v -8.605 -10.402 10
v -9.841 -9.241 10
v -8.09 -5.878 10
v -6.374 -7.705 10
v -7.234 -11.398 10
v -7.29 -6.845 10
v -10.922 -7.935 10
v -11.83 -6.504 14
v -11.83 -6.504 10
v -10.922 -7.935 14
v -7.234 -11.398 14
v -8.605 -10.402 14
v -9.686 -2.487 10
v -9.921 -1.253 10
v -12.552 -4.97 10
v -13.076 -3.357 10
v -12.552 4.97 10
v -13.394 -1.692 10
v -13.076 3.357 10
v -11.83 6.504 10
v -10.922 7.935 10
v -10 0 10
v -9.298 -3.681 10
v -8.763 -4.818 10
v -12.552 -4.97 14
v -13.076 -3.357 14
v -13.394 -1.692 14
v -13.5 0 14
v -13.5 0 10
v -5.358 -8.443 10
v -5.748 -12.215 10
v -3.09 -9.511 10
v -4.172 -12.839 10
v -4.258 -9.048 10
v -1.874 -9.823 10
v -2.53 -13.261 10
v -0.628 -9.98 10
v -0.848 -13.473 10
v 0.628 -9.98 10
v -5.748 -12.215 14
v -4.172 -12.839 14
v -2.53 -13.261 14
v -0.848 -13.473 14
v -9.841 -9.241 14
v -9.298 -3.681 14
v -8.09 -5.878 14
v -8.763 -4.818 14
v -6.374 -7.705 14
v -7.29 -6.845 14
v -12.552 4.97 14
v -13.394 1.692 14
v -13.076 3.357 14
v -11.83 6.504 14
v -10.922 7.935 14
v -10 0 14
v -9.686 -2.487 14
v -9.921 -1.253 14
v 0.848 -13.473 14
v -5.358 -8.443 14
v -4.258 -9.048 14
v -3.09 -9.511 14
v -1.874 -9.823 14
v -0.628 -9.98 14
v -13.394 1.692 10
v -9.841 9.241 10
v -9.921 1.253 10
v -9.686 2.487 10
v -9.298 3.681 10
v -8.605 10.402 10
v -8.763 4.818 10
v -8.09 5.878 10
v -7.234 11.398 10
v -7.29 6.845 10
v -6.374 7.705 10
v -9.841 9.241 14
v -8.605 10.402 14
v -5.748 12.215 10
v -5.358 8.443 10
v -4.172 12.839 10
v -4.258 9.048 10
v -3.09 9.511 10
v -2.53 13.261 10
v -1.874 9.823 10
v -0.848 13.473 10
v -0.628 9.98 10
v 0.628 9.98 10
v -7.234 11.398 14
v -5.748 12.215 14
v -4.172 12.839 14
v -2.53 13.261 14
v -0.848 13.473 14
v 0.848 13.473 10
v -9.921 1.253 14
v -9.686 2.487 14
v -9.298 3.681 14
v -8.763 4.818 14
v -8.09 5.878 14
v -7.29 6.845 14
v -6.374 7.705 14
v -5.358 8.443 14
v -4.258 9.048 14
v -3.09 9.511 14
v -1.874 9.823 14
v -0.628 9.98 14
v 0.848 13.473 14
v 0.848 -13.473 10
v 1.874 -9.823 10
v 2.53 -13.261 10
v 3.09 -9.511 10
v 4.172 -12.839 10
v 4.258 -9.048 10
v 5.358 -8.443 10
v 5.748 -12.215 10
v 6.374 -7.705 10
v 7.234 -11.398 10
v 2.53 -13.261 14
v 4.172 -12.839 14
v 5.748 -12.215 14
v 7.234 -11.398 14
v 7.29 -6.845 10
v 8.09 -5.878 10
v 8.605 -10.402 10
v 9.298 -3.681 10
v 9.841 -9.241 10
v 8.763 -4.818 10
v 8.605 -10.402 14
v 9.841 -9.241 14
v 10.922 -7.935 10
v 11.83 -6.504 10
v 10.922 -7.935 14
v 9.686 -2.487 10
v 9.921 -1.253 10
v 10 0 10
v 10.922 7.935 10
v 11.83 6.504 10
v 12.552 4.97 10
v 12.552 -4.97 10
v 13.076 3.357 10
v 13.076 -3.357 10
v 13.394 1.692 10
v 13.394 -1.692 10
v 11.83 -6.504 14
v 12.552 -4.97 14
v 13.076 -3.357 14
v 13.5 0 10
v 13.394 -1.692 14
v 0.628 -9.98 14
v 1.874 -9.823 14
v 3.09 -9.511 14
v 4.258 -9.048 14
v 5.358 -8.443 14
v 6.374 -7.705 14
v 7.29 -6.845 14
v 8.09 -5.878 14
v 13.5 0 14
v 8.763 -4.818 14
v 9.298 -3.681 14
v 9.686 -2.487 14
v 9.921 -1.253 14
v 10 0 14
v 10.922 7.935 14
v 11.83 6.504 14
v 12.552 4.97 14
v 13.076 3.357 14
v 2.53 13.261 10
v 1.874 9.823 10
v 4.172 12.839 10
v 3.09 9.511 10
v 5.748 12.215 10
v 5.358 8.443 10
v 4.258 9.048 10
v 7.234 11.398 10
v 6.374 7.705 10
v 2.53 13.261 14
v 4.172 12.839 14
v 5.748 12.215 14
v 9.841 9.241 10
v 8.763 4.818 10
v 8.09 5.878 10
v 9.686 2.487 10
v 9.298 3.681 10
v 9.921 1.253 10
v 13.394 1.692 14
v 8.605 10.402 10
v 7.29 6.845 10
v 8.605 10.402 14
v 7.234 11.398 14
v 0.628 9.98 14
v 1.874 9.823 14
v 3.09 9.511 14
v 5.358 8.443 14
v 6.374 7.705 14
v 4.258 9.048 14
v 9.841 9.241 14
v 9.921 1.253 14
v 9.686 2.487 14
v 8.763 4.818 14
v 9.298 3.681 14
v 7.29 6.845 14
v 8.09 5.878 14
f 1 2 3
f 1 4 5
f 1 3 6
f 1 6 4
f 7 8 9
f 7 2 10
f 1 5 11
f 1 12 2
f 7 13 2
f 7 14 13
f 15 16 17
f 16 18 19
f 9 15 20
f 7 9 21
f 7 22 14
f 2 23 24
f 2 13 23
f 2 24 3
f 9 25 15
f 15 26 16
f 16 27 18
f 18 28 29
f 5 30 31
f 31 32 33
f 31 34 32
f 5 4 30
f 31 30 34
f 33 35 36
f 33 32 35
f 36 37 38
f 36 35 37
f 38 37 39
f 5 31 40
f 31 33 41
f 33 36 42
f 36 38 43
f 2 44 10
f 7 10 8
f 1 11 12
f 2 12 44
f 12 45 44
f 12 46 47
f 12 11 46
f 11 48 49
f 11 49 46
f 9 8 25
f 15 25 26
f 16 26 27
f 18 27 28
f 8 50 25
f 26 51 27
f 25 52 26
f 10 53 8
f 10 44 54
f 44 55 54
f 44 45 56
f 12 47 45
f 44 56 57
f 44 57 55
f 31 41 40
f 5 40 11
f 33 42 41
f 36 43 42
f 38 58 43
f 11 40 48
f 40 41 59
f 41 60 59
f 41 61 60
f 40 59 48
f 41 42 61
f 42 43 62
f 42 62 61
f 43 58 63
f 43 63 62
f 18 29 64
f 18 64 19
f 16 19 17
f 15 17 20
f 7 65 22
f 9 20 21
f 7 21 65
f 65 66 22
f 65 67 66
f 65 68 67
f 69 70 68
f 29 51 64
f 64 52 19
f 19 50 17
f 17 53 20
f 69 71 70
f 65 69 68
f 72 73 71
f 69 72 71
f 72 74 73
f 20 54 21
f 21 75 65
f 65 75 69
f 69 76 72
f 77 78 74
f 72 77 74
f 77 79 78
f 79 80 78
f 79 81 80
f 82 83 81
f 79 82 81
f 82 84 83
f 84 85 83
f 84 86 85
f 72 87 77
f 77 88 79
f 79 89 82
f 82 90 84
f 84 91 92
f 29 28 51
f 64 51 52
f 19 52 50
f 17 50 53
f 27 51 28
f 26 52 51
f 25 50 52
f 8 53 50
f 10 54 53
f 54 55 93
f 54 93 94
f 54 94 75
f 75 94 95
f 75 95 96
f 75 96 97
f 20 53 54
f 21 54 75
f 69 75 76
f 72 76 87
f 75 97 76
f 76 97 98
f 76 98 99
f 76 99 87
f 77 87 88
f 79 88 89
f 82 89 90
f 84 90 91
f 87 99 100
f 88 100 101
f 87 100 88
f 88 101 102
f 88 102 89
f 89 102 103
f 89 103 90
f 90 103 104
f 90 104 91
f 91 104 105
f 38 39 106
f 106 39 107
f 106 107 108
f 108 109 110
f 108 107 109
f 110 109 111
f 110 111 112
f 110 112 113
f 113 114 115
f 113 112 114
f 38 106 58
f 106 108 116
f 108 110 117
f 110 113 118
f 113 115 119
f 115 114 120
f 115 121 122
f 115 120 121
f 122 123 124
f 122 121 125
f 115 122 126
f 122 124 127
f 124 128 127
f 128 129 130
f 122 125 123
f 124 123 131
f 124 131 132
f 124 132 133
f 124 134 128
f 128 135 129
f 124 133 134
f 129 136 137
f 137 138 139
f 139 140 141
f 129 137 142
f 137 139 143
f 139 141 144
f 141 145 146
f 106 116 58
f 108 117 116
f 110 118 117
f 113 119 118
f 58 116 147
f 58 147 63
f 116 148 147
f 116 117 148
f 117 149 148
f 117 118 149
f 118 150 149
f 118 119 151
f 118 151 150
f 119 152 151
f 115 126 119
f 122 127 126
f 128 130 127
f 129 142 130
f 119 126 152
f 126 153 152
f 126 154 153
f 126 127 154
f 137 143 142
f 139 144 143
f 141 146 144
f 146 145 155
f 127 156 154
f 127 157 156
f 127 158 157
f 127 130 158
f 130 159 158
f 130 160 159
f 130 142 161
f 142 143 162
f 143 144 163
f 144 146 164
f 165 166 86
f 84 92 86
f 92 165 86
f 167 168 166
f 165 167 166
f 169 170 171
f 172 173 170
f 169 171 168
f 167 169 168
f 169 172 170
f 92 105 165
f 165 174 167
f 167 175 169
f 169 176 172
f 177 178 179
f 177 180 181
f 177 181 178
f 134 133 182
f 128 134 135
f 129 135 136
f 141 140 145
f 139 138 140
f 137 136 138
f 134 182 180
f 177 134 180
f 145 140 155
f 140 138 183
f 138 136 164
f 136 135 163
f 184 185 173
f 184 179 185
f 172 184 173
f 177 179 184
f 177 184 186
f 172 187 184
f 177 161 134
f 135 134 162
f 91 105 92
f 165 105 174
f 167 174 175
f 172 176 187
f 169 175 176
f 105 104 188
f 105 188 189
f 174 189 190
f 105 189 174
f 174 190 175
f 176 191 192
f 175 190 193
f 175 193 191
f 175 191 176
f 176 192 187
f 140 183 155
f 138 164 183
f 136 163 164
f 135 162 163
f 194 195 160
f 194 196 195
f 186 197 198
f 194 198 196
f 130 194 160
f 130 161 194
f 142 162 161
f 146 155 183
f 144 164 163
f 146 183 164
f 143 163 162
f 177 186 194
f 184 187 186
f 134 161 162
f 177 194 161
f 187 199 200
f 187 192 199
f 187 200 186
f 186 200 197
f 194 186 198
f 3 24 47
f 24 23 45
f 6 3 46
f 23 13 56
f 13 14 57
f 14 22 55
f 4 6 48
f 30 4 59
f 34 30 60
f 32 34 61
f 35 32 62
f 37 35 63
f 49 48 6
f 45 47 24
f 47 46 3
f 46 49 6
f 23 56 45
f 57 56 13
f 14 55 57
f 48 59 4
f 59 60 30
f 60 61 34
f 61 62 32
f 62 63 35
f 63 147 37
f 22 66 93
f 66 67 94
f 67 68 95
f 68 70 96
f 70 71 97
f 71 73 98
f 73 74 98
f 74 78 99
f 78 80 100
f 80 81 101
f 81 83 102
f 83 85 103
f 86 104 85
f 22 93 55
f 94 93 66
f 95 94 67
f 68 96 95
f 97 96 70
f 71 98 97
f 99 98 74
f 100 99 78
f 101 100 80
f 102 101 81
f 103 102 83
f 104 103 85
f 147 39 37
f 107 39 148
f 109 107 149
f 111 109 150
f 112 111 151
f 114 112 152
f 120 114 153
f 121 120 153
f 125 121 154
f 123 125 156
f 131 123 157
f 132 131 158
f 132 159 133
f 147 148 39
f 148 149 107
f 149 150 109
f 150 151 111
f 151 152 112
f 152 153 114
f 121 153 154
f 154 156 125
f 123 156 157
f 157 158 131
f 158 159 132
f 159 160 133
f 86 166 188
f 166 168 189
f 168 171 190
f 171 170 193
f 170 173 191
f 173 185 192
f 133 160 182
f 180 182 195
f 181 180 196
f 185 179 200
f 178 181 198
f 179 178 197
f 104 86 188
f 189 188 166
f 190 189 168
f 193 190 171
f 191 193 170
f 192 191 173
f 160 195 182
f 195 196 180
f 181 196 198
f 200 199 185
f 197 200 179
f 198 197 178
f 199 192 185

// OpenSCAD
$fn = 50;

difference() {
	union() {
		translate(v = [0, 0, 10.0]) {
			cylinder(h = 4, r = 13.5);
		}
	}
	union() {
		translate(v = [0, 0, 9.9]) {
			cylinder(h = 4.2, r = 10.0);
		}
	}
}
